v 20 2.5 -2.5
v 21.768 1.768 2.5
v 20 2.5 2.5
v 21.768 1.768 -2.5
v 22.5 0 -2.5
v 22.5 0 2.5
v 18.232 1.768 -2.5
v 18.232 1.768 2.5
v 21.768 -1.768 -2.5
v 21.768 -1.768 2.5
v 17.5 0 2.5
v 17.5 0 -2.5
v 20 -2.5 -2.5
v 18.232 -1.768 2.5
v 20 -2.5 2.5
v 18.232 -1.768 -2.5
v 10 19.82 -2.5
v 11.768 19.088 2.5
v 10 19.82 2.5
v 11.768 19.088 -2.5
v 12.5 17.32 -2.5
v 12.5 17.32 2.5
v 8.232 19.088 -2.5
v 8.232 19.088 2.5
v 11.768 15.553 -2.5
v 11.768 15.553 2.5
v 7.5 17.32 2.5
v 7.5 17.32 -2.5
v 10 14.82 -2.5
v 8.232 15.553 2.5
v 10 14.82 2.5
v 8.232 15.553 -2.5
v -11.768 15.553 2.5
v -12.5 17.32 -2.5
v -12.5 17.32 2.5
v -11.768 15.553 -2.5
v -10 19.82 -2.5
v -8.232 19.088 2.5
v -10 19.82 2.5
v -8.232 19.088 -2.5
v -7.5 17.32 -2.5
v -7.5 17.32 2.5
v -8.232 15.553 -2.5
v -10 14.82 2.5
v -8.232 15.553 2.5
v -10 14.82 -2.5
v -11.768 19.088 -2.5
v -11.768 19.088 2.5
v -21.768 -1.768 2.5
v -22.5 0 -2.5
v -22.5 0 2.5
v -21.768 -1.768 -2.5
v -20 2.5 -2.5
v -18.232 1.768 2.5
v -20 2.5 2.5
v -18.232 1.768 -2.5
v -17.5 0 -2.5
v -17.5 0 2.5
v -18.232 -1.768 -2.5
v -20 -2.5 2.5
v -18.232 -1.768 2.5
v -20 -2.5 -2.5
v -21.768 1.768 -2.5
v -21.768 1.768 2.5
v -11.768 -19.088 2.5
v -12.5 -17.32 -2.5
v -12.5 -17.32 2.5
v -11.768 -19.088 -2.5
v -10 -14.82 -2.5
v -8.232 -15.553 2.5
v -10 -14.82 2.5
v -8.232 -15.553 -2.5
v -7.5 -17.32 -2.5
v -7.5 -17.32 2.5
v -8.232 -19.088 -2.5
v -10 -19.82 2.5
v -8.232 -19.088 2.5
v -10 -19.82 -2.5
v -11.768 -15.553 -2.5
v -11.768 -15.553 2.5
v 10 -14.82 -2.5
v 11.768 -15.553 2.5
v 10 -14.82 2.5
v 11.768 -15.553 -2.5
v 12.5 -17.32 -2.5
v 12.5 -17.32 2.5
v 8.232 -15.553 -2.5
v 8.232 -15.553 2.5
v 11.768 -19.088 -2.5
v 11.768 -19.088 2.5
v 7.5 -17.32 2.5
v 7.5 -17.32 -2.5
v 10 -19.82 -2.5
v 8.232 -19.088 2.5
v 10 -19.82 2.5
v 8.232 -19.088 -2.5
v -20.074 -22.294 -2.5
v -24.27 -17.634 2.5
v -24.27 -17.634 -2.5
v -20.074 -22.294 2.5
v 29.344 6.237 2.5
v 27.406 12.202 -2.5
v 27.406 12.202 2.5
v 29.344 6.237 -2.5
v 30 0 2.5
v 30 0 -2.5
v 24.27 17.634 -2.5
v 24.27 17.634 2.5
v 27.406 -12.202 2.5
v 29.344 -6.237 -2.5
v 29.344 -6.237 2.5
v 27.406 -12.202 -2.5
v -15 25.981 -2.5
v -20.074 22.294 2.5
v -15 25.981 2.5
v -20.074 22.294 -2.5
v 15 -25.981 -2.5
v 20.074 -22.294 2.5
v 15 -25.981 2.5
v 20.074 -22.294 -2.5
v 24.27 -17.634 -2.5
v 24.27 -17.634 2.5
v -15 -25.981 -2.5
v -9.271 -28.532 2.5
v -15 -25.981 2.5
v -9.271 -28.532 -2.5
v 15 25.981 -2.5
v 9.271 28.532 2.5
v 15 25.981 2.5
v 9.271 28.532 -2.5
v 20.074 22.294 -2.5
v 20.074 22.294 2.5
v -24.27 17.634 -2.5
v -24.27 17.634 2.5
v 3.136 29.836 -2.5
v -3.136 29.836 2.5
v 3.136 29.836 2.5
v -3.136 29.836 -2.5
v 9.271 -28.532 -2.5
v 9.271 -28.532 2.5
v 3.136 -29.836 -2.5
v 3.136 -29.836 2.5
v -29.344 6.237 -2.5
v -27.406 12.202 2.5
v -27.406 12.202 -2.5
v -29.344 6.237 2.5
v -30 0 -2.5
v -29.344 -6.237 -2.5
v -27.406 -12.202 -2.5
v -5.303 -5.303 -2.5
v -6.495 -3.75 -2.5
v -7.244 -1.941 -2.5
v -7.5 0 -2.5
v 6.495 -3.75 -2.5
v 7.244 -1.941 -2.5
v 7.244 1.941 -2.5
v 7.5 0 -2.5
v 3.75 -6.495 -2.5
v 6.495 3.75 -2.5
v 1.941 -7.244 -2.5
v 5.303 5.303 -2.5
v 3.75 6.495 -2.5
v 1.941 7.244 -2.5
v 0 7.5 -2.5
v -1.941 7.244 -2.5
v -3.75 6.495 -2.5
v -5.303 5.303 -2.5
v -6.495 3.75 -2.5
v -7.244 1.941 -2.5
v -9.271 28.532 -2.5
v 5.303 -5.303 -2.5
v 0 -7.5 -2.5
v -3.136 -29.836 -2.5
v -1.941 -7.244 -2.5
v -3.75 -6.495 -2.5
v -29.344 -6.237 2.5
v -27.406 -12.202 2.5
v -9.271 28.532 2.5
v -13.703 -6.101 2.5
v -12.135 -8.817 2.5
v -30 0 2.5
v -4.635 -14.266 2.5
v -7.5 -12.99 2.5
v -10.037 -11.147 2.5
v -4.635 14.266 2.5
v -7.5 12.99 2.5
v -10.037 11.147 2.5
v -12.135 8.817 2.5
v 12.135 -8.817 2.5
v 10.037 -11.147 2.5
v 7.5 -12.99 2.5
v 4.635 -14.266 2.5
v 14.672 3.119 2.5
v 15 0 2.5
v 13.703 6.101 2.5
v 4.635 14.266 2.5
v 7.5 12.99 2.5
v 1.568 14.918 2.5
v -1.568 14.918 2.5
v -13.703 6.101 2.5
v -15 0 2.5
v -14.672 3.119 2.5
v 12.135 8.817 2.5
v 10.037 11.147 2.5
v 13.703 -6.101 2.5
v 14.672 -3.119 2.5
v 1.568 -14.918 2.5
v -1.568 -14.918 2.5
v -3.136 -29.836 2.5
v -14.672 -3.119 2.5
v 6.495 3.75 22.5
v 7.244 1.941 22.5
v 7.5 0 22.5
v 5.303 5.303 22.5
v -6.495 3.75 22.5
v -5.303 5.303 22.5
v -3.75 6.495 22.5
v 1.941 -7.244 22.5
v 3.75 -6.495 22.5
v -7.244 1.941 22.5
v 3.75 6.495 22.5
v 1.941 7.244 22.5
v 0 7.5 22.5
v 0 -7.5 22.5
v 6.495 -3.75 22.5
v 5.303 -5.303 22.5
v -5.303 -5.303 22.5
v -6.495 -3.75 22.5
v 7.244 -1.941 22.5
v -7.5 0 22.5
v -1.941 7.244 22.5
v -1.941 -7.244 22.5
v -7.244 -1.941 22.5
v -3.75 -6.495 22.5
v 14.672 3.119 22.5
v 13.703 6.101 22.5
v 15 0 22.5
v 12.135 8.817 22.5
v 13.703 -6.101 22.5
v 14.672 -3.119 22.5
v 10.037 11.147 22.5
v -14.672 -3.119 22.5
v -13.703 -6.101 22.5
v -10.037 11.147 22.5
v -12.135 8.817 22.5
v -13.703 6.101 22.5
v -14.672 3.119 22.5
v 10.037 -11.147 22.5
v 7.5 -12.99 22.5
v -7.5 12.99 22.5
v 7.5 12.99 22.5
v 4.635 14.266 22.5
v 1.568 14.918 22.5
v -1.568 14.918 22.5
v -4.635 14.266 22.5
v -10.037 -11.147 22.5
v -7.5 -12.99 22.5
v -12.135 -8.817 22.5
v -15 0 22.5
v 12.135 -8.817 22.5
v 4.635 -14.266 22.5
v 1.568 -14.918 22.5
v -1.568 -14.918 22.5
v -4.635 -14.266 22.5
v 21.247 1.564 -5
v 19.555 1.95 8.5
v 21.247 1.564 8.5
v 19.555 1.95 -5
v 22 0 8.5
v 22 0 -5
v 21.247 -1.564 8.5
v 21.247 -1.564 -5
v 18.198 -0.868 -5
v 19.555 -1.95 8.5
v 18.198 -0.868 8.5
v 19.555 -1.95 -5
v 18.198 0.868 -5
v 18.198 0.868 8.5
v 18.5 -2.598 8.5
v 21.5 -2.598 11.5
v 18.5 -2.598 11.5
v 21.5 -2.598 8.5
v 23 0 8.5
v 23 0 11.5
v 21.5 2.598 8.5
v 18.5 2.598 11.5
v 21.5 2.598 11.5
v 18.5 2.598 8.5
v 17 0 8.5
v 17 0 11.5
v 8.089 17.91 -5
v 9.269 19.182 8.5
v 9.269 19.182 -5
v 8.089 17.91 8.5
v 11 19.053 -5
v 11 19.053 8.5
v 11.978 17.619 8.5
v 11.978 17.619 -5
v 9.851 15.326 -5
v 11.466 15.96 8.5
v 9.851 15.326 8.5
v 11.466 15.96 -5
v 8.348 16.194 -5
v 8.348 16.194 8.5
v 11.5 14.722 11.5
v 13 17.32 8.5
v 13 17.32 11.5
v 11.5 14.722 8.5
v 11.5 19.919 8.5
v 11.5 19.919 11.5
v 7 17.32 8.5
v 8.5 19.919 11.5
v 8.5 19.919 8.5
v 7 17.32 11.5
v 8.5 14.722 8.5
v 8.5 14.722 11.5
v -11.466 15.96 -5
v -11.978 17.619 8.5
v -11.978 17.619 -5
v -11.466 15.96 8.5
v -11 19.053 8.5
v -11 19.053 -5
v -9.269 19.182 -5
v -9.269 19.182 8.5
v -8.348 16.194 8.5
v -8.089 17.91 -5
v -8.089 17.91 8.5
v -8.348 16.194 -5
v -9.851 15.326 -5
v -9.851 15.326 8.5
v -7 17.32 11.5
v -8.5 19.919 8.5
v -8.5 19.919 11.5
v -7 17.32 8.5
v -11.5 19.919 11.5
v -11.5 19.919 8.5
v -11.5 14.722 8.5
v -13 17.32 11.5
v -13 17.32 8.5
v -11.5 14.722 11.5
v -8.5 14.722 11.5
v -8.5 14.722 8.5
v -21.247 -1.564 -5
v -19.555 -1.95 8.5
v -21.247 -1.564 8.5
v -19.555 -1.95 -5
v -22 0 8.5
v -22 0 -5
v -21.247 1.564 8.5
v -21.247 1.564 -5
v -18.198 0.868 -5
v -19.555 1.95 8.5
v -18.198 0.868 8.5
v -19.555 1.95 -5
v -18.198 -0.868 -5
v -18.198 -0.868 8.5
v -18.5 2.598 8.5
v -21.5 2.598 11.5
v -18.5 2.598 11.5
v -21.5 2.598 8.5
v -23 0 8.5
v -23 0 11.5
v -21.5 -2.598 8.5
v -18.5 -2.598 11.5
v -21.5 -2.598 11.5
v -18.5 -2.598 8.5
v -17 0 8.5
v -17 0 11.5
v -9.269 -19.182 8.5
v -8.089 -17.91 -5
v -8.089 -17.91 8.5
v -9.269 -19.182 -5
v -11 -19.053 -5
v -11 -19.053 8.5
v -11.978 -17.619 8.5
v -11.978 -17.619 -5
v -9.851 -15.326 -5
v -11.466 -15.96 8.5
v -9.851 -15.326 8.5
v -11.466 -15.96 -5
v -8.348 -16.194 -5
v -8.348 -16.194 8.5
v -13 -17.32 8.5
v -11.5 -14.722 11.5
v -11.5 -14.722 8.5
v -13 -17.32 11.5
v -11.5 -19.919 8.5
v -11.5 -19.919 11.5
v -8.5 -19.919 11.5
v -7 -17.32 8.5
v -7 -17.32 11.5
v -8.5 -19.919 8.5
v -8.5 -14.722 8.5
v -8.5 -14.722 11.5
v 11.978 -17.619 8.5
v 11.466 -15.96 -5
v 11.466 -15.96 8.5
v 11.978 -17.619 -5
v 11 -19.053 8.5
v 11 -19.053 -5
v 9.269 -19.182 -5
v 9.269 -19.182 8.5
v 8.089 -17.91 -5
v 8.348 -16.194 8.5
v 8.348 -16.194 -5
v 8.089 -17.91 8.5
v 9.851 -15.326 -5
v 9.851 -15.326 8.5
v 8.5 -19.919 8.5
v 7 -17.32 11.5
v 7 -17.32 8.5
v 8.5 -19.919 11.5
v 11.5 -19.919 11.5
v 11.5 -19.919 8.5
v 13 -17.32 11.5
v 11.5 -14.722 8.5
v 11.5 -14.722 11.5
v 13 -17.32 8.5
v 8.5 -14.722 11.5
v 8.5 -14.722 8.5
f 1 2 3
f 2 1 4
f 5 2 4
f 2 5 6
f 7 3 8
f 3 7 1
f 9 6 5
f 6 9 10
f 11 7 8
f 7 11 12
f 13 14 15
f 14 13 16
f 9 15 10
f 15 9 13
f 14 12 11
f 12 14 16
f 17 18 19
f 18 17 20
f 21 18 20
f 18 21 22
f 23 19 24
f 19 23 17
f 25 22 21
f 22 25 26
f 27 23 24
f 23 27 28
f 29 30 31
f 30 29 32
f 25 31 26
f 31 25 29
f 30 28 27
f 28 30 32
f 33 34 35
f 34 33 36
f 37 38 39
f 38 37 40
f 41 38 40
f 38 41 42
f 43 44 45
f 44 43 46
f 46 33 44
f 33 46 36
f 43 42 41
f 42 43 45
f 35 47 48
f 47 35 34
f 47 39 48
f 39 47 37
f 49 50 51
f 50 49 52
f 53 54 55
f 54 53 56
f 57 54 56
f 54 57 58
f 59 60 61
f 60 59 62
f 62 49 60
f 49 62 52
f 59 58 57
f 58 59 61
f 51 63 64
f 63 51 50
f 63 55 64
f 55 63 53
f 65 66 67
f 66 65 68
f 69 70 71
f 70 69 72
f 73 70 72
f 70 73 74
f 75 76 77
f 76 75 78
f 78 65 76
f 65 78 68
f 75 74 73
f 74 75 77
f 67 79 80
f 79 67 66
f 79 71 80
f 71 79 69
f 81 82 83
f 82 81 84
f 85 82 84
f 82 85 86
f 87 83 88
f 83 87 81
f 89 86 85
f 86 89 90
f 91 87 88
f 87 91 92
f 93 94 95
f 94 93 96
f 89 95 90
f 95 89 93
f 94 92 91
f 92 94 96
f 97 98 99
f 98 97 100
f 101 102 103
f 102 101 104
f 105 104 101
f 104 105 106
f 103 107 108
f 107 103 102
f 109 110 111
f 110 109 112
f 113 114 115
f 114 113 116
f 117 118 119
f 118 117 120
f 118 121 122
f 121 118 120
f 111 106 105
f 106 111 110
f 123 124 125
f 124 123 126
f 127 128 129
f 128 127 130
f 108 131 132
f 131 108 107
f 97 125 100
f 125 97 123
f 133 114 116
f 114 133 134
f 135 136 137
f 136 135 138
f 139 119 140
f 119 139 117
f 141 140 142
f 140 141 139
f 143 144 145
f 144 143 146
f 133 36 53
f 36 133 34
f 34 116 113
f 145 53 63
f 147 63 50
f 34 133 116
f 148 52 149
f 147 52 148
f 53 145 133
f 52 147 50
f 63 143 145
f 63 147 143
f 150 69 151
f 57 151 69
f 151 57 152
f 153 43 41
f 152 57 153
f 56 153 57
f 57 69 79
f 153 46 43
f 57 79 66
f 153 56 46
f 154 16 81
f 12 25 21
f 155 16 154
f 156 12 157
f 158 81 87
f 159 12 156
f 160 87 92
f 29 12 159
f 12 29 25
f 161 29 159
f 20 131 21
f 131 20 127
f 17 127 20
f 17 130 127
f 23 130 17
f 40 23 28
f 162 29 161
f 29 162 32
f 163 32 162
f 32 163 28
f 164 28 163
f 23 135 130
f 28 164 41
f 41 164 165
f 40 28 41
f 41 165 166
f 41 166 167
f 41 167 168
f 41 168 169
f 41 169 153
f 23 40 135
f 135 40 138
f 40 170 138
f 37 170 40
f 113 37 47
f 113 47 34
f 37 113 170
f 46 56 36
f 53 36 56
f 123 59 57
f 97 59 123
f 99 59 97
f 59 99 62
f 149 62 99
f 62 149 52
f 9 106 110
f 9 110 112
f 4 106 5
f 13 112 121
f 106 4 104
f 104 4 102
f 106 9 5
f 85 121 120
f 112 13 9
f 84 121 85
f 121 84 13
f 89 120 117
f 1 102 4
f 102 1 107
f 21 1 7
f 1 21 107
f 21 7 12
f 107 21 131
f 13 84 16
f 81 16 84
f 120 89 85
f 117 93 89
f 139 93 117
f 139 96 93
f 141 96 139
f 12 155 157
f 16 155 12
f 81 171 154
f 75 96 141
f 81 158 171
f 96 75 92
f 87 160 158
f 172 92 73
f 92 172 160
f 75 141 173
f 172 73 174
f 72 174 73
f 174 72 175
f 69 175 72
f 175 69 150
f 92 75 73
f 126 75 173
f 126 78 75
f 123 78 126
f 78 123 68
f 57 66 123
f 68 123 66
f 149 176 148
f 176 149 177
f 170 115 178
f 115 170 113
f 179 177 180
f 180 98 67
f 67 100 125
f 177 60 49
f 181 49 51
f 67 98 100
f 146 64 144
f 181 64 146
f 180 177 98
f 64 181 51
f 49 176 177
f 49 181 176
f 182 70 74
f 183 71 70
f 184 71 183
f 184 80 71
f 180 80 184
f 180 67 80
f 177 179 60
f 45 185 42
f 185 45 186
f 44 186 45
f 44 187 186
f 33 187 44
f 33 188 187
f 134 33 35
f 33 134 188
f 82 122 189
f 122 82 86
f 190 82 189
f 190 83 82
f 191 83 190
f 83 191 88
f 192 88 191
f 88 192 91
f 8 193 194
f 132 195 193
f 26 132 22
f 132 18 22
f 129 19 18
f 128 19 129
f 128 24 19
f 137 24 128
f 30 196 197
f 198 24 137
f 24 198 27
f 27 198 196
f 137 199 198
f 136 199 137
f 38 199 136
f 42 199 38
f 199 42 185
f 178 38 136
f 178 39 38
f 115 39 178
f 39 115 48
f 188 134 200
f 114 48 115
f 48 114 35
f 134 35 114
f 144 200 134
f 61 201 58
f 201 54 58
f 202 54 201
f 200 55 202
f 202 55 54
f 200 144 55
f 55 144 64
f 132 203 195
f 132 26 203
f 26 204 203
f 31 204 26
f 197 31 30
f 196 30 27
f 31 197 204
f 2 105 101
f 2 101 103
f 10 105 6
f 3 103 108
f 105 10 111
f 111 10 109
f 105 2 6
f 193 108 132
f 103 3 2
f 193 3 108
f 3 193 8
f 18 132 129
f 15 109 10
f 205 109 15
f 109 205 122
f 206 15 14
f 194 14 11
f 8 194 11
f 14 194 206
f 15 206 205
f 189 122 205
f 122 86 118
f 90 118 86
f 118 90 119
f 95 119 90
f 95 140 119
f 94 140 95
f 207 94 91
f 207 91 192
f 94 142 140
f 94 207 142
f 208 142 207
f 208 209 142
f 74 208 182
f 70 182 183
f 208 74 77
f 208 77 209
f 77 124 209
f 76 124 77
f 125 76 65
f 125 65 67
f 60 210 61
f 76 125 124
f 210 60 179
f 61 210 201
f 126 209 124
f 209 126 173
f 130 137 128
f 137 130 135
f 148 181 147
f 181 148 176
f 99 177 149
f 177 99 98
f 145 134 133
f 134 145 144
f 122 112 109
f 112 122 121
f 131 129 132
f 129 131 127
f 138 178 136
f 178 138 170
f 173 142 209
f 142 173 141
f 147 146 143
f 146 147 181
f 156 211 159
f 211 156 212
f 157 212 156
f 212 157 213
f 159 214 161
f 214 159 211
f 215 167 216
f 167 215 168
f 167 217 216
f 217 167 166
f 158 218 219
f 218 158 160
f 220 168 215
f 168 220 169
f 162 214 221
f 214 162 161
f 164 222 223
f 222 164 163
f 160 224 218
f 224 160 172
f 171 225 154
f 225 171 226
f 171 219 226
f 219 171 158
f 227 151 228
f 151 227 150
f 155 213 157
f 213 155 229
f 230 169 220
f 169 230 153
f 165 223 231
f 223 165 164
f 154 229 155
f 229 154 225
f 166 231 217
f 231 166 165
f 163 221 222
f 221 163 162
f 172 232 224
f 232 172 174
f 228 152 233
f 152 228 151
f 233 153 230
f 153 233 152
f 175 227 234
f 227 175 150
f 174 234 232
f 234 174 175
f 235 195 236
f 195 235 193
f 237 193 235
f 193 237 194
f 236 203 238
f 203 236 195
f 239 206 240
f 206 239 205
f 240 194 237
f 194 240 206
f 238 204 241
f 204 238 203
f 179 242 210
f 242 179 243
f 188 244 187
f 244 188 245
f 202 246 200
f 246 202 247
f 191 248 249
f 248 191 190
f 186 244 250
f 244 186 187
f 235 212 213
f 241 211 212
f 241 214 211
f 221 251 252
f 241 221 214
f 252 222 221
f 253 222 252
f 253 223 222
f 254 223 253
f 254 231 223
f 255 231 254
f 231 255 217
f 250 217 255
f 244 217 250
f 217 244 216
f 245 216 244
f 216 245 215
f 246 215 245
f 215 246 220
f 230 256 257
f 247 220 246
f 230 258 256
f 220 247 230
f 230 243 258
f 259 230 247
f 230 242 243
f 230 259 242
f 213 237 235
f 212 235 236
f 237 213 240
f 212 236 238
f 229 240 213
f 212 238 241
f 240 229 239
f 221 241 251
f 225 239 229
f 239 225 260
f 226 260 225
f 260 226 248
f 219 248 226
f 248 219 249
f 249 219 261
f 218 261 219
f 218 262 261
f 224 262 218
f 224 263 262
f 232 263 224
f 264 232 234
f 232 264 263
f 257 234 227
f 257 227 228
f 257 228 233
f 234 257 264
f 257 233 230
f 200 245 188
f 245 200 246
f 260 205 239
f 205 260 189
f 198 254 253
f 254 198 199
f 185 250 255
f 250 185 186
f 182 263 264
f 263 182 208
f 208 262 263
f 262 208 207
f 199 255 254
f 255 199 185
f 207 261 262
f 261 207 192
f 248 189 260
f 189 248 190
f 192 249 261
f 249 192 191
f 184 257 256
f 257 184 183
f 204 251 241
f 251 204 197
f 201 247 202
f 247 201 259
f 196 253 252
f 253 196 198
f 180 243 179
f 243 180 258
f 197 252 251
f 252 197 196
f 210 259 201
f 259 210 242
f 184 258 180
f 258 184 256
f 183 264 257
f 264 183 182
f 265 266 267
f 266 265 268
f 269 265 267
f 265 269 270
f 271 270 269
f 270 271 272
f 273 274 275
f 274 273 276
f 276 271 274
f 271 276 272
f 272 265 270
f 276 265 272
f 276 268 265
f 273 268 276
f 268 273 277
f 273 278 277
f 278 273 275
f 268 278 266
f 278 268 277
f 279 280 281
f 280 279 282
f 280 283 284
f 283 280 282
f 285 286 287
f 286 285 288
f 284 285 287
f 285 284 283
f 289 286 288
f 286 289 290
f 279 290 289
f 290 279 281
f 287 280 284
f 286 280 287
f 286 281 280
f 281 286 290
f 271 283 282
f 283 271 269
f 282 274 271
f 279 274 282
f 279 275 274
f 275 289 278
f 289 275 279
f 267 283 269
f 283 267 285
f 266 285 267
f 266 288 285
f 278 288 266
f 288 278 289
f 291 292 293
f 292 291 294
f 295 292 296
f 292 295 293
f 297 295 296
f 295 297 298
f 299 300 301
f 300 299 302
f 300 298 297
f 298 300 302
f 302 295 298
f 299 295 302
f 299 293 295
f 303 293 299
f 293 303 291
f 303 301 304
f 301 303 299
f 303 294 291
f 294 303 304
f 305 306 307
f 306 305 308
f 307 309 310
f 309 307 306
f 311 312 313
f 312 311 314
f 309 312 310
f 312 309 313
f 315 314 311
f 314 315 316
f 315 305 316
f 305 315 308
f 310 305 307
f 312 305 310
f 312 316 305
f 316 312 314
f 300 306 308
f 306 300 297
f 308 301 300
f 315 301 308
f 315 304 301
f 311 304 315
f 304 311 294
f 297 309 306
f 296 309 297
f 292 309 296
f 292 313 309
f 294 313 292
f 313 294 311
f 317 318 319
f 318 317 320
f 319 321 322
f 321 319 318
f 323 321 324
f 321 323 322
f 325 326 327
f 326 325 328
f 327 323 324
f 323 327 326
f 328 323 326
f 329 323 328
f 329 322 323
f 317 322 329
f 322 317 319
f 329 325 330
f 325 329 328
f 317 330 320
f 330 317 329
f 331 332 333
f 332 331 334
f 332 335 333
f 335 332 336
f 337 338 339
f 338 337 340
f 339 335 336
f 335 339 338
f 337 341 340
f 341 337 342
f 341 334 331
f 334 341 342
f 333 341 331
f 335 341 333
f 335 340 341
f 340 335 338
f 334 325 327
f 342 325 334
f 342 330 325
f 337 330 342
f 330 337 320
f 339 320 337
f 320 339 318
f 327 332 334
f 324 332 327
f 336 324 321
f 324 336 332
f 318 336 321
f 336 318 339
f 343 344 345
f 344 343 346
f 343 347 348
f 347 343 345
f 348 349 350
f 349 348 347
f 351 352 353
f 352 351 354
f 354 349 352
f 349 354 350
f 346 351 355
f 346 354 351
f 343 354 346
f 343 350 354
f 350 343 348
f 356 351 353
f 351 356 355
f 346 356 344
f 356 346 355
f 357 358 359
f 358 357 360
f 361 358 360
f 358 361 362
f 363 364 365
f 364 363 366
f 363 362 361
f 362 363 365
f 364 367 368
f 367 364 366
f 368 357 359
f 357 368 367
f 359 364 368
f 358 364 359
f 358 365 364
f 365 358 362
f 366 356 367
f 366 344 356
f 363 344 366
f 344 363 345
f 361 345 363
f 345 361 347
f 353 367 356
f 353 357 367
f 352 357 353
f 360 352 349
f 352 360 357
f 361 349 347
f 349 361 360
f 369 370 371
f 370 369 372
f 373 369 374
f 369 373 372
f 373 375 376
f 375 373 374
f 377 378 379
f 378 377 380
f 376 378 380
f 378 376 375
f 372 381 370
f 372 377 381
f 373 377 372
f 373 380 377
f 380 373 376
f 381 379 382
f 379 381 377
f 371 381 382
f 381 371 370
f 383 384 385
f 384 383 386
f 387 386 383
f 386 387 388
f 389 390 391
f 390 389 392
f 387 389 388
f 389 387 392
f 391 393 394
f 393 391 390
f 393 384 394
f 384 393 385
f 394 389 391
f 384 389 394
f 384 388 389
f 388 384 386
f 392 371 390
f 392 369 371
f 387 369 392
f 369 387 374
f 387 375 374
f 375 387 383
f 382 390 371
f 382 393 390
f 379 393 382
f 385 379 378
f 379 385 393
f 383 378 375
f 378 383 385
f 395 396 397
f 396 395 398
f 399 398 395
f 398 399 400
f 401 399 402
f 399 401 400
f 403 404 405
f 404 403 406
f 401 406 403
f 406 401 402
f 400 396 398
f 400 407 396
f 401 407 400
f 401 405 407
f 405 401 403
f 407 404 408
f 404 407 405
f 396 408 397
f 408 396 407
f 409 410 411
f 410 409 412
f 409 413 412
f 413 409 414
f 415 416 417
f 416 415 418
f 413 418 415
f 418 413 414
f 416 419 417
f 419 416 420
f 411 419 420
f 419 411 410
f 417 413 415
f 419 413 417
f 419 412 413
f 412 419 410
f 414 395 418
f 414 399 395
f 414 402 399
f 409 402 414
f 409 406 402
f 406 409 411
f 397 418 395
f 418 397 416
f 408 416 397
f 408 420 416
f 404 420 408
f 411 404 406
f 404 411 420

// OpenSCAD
// Parameters
flange_diameter = 60;
flange_thickness = 5;
hub_diameter = 30;
hub_length = 20;
bore_diameter = 15;
bolt_hole_diameter = 5;
bolt_count = 6;
bolt_length = 15;
bolt_diameter = 4;
nut_diameter = 6;
nut_thickness = 3;
bolt_circle_diameter = 40;

// Module for the flange
module flange() {
    difference() {
        cylinder(d=flange_diameter, h=flange_thickness, center=true);
        cylinder(d=bore_diameter, h=flange_thickness + 2, center=true);
        for (i = [0:bolt_count-1]) {
            angle = i * 360 / bolt_count;
            x = bolt_circle_diameter / 2 * cos(angle);
            y = bolt_circle_diameter / 2 * sin(angle);
            translate([x, y, 0])
                cylinder(d=bolt_hole_diameter, h=flange_thickness + 2, center=true);
        }
    }
}

// Module for the hub
module hub() {
    difference() {
        cylinder(d=hub_diameter, h=hub_length, center=true);
        cylinder(d=bore_diameter, h=hub_length + 2, center=true);
    }
}

// Module for a single bolt
module bolt() {
    union() {
        cylinder(d=bolt_diameter, h=bolt_length, center=true);
        translate([0, 0, bolt_length/2])
            cylinder(d=nut_diameter, h=nut_thickness, center=true, $fn=6);
    }
}

// Module for assembling the coupling
module coupling() {
    flange();
    translate([0, 0, flange_thickness/2 + hub_length/2])
        hub();
    for (i = [0:bolt_count-1]) {
        angle = i * 360 / bolt_count;
        x = bolt_circle_diameter / 2 * cos(angle);
        y = bolt_circle_diameter / 2 * sin(angle);
        translate([x, y, flange_thickness/2])
            rotate([0, 0, angle])
                bolt();
    }
}

// Render the coupling
coupling();
